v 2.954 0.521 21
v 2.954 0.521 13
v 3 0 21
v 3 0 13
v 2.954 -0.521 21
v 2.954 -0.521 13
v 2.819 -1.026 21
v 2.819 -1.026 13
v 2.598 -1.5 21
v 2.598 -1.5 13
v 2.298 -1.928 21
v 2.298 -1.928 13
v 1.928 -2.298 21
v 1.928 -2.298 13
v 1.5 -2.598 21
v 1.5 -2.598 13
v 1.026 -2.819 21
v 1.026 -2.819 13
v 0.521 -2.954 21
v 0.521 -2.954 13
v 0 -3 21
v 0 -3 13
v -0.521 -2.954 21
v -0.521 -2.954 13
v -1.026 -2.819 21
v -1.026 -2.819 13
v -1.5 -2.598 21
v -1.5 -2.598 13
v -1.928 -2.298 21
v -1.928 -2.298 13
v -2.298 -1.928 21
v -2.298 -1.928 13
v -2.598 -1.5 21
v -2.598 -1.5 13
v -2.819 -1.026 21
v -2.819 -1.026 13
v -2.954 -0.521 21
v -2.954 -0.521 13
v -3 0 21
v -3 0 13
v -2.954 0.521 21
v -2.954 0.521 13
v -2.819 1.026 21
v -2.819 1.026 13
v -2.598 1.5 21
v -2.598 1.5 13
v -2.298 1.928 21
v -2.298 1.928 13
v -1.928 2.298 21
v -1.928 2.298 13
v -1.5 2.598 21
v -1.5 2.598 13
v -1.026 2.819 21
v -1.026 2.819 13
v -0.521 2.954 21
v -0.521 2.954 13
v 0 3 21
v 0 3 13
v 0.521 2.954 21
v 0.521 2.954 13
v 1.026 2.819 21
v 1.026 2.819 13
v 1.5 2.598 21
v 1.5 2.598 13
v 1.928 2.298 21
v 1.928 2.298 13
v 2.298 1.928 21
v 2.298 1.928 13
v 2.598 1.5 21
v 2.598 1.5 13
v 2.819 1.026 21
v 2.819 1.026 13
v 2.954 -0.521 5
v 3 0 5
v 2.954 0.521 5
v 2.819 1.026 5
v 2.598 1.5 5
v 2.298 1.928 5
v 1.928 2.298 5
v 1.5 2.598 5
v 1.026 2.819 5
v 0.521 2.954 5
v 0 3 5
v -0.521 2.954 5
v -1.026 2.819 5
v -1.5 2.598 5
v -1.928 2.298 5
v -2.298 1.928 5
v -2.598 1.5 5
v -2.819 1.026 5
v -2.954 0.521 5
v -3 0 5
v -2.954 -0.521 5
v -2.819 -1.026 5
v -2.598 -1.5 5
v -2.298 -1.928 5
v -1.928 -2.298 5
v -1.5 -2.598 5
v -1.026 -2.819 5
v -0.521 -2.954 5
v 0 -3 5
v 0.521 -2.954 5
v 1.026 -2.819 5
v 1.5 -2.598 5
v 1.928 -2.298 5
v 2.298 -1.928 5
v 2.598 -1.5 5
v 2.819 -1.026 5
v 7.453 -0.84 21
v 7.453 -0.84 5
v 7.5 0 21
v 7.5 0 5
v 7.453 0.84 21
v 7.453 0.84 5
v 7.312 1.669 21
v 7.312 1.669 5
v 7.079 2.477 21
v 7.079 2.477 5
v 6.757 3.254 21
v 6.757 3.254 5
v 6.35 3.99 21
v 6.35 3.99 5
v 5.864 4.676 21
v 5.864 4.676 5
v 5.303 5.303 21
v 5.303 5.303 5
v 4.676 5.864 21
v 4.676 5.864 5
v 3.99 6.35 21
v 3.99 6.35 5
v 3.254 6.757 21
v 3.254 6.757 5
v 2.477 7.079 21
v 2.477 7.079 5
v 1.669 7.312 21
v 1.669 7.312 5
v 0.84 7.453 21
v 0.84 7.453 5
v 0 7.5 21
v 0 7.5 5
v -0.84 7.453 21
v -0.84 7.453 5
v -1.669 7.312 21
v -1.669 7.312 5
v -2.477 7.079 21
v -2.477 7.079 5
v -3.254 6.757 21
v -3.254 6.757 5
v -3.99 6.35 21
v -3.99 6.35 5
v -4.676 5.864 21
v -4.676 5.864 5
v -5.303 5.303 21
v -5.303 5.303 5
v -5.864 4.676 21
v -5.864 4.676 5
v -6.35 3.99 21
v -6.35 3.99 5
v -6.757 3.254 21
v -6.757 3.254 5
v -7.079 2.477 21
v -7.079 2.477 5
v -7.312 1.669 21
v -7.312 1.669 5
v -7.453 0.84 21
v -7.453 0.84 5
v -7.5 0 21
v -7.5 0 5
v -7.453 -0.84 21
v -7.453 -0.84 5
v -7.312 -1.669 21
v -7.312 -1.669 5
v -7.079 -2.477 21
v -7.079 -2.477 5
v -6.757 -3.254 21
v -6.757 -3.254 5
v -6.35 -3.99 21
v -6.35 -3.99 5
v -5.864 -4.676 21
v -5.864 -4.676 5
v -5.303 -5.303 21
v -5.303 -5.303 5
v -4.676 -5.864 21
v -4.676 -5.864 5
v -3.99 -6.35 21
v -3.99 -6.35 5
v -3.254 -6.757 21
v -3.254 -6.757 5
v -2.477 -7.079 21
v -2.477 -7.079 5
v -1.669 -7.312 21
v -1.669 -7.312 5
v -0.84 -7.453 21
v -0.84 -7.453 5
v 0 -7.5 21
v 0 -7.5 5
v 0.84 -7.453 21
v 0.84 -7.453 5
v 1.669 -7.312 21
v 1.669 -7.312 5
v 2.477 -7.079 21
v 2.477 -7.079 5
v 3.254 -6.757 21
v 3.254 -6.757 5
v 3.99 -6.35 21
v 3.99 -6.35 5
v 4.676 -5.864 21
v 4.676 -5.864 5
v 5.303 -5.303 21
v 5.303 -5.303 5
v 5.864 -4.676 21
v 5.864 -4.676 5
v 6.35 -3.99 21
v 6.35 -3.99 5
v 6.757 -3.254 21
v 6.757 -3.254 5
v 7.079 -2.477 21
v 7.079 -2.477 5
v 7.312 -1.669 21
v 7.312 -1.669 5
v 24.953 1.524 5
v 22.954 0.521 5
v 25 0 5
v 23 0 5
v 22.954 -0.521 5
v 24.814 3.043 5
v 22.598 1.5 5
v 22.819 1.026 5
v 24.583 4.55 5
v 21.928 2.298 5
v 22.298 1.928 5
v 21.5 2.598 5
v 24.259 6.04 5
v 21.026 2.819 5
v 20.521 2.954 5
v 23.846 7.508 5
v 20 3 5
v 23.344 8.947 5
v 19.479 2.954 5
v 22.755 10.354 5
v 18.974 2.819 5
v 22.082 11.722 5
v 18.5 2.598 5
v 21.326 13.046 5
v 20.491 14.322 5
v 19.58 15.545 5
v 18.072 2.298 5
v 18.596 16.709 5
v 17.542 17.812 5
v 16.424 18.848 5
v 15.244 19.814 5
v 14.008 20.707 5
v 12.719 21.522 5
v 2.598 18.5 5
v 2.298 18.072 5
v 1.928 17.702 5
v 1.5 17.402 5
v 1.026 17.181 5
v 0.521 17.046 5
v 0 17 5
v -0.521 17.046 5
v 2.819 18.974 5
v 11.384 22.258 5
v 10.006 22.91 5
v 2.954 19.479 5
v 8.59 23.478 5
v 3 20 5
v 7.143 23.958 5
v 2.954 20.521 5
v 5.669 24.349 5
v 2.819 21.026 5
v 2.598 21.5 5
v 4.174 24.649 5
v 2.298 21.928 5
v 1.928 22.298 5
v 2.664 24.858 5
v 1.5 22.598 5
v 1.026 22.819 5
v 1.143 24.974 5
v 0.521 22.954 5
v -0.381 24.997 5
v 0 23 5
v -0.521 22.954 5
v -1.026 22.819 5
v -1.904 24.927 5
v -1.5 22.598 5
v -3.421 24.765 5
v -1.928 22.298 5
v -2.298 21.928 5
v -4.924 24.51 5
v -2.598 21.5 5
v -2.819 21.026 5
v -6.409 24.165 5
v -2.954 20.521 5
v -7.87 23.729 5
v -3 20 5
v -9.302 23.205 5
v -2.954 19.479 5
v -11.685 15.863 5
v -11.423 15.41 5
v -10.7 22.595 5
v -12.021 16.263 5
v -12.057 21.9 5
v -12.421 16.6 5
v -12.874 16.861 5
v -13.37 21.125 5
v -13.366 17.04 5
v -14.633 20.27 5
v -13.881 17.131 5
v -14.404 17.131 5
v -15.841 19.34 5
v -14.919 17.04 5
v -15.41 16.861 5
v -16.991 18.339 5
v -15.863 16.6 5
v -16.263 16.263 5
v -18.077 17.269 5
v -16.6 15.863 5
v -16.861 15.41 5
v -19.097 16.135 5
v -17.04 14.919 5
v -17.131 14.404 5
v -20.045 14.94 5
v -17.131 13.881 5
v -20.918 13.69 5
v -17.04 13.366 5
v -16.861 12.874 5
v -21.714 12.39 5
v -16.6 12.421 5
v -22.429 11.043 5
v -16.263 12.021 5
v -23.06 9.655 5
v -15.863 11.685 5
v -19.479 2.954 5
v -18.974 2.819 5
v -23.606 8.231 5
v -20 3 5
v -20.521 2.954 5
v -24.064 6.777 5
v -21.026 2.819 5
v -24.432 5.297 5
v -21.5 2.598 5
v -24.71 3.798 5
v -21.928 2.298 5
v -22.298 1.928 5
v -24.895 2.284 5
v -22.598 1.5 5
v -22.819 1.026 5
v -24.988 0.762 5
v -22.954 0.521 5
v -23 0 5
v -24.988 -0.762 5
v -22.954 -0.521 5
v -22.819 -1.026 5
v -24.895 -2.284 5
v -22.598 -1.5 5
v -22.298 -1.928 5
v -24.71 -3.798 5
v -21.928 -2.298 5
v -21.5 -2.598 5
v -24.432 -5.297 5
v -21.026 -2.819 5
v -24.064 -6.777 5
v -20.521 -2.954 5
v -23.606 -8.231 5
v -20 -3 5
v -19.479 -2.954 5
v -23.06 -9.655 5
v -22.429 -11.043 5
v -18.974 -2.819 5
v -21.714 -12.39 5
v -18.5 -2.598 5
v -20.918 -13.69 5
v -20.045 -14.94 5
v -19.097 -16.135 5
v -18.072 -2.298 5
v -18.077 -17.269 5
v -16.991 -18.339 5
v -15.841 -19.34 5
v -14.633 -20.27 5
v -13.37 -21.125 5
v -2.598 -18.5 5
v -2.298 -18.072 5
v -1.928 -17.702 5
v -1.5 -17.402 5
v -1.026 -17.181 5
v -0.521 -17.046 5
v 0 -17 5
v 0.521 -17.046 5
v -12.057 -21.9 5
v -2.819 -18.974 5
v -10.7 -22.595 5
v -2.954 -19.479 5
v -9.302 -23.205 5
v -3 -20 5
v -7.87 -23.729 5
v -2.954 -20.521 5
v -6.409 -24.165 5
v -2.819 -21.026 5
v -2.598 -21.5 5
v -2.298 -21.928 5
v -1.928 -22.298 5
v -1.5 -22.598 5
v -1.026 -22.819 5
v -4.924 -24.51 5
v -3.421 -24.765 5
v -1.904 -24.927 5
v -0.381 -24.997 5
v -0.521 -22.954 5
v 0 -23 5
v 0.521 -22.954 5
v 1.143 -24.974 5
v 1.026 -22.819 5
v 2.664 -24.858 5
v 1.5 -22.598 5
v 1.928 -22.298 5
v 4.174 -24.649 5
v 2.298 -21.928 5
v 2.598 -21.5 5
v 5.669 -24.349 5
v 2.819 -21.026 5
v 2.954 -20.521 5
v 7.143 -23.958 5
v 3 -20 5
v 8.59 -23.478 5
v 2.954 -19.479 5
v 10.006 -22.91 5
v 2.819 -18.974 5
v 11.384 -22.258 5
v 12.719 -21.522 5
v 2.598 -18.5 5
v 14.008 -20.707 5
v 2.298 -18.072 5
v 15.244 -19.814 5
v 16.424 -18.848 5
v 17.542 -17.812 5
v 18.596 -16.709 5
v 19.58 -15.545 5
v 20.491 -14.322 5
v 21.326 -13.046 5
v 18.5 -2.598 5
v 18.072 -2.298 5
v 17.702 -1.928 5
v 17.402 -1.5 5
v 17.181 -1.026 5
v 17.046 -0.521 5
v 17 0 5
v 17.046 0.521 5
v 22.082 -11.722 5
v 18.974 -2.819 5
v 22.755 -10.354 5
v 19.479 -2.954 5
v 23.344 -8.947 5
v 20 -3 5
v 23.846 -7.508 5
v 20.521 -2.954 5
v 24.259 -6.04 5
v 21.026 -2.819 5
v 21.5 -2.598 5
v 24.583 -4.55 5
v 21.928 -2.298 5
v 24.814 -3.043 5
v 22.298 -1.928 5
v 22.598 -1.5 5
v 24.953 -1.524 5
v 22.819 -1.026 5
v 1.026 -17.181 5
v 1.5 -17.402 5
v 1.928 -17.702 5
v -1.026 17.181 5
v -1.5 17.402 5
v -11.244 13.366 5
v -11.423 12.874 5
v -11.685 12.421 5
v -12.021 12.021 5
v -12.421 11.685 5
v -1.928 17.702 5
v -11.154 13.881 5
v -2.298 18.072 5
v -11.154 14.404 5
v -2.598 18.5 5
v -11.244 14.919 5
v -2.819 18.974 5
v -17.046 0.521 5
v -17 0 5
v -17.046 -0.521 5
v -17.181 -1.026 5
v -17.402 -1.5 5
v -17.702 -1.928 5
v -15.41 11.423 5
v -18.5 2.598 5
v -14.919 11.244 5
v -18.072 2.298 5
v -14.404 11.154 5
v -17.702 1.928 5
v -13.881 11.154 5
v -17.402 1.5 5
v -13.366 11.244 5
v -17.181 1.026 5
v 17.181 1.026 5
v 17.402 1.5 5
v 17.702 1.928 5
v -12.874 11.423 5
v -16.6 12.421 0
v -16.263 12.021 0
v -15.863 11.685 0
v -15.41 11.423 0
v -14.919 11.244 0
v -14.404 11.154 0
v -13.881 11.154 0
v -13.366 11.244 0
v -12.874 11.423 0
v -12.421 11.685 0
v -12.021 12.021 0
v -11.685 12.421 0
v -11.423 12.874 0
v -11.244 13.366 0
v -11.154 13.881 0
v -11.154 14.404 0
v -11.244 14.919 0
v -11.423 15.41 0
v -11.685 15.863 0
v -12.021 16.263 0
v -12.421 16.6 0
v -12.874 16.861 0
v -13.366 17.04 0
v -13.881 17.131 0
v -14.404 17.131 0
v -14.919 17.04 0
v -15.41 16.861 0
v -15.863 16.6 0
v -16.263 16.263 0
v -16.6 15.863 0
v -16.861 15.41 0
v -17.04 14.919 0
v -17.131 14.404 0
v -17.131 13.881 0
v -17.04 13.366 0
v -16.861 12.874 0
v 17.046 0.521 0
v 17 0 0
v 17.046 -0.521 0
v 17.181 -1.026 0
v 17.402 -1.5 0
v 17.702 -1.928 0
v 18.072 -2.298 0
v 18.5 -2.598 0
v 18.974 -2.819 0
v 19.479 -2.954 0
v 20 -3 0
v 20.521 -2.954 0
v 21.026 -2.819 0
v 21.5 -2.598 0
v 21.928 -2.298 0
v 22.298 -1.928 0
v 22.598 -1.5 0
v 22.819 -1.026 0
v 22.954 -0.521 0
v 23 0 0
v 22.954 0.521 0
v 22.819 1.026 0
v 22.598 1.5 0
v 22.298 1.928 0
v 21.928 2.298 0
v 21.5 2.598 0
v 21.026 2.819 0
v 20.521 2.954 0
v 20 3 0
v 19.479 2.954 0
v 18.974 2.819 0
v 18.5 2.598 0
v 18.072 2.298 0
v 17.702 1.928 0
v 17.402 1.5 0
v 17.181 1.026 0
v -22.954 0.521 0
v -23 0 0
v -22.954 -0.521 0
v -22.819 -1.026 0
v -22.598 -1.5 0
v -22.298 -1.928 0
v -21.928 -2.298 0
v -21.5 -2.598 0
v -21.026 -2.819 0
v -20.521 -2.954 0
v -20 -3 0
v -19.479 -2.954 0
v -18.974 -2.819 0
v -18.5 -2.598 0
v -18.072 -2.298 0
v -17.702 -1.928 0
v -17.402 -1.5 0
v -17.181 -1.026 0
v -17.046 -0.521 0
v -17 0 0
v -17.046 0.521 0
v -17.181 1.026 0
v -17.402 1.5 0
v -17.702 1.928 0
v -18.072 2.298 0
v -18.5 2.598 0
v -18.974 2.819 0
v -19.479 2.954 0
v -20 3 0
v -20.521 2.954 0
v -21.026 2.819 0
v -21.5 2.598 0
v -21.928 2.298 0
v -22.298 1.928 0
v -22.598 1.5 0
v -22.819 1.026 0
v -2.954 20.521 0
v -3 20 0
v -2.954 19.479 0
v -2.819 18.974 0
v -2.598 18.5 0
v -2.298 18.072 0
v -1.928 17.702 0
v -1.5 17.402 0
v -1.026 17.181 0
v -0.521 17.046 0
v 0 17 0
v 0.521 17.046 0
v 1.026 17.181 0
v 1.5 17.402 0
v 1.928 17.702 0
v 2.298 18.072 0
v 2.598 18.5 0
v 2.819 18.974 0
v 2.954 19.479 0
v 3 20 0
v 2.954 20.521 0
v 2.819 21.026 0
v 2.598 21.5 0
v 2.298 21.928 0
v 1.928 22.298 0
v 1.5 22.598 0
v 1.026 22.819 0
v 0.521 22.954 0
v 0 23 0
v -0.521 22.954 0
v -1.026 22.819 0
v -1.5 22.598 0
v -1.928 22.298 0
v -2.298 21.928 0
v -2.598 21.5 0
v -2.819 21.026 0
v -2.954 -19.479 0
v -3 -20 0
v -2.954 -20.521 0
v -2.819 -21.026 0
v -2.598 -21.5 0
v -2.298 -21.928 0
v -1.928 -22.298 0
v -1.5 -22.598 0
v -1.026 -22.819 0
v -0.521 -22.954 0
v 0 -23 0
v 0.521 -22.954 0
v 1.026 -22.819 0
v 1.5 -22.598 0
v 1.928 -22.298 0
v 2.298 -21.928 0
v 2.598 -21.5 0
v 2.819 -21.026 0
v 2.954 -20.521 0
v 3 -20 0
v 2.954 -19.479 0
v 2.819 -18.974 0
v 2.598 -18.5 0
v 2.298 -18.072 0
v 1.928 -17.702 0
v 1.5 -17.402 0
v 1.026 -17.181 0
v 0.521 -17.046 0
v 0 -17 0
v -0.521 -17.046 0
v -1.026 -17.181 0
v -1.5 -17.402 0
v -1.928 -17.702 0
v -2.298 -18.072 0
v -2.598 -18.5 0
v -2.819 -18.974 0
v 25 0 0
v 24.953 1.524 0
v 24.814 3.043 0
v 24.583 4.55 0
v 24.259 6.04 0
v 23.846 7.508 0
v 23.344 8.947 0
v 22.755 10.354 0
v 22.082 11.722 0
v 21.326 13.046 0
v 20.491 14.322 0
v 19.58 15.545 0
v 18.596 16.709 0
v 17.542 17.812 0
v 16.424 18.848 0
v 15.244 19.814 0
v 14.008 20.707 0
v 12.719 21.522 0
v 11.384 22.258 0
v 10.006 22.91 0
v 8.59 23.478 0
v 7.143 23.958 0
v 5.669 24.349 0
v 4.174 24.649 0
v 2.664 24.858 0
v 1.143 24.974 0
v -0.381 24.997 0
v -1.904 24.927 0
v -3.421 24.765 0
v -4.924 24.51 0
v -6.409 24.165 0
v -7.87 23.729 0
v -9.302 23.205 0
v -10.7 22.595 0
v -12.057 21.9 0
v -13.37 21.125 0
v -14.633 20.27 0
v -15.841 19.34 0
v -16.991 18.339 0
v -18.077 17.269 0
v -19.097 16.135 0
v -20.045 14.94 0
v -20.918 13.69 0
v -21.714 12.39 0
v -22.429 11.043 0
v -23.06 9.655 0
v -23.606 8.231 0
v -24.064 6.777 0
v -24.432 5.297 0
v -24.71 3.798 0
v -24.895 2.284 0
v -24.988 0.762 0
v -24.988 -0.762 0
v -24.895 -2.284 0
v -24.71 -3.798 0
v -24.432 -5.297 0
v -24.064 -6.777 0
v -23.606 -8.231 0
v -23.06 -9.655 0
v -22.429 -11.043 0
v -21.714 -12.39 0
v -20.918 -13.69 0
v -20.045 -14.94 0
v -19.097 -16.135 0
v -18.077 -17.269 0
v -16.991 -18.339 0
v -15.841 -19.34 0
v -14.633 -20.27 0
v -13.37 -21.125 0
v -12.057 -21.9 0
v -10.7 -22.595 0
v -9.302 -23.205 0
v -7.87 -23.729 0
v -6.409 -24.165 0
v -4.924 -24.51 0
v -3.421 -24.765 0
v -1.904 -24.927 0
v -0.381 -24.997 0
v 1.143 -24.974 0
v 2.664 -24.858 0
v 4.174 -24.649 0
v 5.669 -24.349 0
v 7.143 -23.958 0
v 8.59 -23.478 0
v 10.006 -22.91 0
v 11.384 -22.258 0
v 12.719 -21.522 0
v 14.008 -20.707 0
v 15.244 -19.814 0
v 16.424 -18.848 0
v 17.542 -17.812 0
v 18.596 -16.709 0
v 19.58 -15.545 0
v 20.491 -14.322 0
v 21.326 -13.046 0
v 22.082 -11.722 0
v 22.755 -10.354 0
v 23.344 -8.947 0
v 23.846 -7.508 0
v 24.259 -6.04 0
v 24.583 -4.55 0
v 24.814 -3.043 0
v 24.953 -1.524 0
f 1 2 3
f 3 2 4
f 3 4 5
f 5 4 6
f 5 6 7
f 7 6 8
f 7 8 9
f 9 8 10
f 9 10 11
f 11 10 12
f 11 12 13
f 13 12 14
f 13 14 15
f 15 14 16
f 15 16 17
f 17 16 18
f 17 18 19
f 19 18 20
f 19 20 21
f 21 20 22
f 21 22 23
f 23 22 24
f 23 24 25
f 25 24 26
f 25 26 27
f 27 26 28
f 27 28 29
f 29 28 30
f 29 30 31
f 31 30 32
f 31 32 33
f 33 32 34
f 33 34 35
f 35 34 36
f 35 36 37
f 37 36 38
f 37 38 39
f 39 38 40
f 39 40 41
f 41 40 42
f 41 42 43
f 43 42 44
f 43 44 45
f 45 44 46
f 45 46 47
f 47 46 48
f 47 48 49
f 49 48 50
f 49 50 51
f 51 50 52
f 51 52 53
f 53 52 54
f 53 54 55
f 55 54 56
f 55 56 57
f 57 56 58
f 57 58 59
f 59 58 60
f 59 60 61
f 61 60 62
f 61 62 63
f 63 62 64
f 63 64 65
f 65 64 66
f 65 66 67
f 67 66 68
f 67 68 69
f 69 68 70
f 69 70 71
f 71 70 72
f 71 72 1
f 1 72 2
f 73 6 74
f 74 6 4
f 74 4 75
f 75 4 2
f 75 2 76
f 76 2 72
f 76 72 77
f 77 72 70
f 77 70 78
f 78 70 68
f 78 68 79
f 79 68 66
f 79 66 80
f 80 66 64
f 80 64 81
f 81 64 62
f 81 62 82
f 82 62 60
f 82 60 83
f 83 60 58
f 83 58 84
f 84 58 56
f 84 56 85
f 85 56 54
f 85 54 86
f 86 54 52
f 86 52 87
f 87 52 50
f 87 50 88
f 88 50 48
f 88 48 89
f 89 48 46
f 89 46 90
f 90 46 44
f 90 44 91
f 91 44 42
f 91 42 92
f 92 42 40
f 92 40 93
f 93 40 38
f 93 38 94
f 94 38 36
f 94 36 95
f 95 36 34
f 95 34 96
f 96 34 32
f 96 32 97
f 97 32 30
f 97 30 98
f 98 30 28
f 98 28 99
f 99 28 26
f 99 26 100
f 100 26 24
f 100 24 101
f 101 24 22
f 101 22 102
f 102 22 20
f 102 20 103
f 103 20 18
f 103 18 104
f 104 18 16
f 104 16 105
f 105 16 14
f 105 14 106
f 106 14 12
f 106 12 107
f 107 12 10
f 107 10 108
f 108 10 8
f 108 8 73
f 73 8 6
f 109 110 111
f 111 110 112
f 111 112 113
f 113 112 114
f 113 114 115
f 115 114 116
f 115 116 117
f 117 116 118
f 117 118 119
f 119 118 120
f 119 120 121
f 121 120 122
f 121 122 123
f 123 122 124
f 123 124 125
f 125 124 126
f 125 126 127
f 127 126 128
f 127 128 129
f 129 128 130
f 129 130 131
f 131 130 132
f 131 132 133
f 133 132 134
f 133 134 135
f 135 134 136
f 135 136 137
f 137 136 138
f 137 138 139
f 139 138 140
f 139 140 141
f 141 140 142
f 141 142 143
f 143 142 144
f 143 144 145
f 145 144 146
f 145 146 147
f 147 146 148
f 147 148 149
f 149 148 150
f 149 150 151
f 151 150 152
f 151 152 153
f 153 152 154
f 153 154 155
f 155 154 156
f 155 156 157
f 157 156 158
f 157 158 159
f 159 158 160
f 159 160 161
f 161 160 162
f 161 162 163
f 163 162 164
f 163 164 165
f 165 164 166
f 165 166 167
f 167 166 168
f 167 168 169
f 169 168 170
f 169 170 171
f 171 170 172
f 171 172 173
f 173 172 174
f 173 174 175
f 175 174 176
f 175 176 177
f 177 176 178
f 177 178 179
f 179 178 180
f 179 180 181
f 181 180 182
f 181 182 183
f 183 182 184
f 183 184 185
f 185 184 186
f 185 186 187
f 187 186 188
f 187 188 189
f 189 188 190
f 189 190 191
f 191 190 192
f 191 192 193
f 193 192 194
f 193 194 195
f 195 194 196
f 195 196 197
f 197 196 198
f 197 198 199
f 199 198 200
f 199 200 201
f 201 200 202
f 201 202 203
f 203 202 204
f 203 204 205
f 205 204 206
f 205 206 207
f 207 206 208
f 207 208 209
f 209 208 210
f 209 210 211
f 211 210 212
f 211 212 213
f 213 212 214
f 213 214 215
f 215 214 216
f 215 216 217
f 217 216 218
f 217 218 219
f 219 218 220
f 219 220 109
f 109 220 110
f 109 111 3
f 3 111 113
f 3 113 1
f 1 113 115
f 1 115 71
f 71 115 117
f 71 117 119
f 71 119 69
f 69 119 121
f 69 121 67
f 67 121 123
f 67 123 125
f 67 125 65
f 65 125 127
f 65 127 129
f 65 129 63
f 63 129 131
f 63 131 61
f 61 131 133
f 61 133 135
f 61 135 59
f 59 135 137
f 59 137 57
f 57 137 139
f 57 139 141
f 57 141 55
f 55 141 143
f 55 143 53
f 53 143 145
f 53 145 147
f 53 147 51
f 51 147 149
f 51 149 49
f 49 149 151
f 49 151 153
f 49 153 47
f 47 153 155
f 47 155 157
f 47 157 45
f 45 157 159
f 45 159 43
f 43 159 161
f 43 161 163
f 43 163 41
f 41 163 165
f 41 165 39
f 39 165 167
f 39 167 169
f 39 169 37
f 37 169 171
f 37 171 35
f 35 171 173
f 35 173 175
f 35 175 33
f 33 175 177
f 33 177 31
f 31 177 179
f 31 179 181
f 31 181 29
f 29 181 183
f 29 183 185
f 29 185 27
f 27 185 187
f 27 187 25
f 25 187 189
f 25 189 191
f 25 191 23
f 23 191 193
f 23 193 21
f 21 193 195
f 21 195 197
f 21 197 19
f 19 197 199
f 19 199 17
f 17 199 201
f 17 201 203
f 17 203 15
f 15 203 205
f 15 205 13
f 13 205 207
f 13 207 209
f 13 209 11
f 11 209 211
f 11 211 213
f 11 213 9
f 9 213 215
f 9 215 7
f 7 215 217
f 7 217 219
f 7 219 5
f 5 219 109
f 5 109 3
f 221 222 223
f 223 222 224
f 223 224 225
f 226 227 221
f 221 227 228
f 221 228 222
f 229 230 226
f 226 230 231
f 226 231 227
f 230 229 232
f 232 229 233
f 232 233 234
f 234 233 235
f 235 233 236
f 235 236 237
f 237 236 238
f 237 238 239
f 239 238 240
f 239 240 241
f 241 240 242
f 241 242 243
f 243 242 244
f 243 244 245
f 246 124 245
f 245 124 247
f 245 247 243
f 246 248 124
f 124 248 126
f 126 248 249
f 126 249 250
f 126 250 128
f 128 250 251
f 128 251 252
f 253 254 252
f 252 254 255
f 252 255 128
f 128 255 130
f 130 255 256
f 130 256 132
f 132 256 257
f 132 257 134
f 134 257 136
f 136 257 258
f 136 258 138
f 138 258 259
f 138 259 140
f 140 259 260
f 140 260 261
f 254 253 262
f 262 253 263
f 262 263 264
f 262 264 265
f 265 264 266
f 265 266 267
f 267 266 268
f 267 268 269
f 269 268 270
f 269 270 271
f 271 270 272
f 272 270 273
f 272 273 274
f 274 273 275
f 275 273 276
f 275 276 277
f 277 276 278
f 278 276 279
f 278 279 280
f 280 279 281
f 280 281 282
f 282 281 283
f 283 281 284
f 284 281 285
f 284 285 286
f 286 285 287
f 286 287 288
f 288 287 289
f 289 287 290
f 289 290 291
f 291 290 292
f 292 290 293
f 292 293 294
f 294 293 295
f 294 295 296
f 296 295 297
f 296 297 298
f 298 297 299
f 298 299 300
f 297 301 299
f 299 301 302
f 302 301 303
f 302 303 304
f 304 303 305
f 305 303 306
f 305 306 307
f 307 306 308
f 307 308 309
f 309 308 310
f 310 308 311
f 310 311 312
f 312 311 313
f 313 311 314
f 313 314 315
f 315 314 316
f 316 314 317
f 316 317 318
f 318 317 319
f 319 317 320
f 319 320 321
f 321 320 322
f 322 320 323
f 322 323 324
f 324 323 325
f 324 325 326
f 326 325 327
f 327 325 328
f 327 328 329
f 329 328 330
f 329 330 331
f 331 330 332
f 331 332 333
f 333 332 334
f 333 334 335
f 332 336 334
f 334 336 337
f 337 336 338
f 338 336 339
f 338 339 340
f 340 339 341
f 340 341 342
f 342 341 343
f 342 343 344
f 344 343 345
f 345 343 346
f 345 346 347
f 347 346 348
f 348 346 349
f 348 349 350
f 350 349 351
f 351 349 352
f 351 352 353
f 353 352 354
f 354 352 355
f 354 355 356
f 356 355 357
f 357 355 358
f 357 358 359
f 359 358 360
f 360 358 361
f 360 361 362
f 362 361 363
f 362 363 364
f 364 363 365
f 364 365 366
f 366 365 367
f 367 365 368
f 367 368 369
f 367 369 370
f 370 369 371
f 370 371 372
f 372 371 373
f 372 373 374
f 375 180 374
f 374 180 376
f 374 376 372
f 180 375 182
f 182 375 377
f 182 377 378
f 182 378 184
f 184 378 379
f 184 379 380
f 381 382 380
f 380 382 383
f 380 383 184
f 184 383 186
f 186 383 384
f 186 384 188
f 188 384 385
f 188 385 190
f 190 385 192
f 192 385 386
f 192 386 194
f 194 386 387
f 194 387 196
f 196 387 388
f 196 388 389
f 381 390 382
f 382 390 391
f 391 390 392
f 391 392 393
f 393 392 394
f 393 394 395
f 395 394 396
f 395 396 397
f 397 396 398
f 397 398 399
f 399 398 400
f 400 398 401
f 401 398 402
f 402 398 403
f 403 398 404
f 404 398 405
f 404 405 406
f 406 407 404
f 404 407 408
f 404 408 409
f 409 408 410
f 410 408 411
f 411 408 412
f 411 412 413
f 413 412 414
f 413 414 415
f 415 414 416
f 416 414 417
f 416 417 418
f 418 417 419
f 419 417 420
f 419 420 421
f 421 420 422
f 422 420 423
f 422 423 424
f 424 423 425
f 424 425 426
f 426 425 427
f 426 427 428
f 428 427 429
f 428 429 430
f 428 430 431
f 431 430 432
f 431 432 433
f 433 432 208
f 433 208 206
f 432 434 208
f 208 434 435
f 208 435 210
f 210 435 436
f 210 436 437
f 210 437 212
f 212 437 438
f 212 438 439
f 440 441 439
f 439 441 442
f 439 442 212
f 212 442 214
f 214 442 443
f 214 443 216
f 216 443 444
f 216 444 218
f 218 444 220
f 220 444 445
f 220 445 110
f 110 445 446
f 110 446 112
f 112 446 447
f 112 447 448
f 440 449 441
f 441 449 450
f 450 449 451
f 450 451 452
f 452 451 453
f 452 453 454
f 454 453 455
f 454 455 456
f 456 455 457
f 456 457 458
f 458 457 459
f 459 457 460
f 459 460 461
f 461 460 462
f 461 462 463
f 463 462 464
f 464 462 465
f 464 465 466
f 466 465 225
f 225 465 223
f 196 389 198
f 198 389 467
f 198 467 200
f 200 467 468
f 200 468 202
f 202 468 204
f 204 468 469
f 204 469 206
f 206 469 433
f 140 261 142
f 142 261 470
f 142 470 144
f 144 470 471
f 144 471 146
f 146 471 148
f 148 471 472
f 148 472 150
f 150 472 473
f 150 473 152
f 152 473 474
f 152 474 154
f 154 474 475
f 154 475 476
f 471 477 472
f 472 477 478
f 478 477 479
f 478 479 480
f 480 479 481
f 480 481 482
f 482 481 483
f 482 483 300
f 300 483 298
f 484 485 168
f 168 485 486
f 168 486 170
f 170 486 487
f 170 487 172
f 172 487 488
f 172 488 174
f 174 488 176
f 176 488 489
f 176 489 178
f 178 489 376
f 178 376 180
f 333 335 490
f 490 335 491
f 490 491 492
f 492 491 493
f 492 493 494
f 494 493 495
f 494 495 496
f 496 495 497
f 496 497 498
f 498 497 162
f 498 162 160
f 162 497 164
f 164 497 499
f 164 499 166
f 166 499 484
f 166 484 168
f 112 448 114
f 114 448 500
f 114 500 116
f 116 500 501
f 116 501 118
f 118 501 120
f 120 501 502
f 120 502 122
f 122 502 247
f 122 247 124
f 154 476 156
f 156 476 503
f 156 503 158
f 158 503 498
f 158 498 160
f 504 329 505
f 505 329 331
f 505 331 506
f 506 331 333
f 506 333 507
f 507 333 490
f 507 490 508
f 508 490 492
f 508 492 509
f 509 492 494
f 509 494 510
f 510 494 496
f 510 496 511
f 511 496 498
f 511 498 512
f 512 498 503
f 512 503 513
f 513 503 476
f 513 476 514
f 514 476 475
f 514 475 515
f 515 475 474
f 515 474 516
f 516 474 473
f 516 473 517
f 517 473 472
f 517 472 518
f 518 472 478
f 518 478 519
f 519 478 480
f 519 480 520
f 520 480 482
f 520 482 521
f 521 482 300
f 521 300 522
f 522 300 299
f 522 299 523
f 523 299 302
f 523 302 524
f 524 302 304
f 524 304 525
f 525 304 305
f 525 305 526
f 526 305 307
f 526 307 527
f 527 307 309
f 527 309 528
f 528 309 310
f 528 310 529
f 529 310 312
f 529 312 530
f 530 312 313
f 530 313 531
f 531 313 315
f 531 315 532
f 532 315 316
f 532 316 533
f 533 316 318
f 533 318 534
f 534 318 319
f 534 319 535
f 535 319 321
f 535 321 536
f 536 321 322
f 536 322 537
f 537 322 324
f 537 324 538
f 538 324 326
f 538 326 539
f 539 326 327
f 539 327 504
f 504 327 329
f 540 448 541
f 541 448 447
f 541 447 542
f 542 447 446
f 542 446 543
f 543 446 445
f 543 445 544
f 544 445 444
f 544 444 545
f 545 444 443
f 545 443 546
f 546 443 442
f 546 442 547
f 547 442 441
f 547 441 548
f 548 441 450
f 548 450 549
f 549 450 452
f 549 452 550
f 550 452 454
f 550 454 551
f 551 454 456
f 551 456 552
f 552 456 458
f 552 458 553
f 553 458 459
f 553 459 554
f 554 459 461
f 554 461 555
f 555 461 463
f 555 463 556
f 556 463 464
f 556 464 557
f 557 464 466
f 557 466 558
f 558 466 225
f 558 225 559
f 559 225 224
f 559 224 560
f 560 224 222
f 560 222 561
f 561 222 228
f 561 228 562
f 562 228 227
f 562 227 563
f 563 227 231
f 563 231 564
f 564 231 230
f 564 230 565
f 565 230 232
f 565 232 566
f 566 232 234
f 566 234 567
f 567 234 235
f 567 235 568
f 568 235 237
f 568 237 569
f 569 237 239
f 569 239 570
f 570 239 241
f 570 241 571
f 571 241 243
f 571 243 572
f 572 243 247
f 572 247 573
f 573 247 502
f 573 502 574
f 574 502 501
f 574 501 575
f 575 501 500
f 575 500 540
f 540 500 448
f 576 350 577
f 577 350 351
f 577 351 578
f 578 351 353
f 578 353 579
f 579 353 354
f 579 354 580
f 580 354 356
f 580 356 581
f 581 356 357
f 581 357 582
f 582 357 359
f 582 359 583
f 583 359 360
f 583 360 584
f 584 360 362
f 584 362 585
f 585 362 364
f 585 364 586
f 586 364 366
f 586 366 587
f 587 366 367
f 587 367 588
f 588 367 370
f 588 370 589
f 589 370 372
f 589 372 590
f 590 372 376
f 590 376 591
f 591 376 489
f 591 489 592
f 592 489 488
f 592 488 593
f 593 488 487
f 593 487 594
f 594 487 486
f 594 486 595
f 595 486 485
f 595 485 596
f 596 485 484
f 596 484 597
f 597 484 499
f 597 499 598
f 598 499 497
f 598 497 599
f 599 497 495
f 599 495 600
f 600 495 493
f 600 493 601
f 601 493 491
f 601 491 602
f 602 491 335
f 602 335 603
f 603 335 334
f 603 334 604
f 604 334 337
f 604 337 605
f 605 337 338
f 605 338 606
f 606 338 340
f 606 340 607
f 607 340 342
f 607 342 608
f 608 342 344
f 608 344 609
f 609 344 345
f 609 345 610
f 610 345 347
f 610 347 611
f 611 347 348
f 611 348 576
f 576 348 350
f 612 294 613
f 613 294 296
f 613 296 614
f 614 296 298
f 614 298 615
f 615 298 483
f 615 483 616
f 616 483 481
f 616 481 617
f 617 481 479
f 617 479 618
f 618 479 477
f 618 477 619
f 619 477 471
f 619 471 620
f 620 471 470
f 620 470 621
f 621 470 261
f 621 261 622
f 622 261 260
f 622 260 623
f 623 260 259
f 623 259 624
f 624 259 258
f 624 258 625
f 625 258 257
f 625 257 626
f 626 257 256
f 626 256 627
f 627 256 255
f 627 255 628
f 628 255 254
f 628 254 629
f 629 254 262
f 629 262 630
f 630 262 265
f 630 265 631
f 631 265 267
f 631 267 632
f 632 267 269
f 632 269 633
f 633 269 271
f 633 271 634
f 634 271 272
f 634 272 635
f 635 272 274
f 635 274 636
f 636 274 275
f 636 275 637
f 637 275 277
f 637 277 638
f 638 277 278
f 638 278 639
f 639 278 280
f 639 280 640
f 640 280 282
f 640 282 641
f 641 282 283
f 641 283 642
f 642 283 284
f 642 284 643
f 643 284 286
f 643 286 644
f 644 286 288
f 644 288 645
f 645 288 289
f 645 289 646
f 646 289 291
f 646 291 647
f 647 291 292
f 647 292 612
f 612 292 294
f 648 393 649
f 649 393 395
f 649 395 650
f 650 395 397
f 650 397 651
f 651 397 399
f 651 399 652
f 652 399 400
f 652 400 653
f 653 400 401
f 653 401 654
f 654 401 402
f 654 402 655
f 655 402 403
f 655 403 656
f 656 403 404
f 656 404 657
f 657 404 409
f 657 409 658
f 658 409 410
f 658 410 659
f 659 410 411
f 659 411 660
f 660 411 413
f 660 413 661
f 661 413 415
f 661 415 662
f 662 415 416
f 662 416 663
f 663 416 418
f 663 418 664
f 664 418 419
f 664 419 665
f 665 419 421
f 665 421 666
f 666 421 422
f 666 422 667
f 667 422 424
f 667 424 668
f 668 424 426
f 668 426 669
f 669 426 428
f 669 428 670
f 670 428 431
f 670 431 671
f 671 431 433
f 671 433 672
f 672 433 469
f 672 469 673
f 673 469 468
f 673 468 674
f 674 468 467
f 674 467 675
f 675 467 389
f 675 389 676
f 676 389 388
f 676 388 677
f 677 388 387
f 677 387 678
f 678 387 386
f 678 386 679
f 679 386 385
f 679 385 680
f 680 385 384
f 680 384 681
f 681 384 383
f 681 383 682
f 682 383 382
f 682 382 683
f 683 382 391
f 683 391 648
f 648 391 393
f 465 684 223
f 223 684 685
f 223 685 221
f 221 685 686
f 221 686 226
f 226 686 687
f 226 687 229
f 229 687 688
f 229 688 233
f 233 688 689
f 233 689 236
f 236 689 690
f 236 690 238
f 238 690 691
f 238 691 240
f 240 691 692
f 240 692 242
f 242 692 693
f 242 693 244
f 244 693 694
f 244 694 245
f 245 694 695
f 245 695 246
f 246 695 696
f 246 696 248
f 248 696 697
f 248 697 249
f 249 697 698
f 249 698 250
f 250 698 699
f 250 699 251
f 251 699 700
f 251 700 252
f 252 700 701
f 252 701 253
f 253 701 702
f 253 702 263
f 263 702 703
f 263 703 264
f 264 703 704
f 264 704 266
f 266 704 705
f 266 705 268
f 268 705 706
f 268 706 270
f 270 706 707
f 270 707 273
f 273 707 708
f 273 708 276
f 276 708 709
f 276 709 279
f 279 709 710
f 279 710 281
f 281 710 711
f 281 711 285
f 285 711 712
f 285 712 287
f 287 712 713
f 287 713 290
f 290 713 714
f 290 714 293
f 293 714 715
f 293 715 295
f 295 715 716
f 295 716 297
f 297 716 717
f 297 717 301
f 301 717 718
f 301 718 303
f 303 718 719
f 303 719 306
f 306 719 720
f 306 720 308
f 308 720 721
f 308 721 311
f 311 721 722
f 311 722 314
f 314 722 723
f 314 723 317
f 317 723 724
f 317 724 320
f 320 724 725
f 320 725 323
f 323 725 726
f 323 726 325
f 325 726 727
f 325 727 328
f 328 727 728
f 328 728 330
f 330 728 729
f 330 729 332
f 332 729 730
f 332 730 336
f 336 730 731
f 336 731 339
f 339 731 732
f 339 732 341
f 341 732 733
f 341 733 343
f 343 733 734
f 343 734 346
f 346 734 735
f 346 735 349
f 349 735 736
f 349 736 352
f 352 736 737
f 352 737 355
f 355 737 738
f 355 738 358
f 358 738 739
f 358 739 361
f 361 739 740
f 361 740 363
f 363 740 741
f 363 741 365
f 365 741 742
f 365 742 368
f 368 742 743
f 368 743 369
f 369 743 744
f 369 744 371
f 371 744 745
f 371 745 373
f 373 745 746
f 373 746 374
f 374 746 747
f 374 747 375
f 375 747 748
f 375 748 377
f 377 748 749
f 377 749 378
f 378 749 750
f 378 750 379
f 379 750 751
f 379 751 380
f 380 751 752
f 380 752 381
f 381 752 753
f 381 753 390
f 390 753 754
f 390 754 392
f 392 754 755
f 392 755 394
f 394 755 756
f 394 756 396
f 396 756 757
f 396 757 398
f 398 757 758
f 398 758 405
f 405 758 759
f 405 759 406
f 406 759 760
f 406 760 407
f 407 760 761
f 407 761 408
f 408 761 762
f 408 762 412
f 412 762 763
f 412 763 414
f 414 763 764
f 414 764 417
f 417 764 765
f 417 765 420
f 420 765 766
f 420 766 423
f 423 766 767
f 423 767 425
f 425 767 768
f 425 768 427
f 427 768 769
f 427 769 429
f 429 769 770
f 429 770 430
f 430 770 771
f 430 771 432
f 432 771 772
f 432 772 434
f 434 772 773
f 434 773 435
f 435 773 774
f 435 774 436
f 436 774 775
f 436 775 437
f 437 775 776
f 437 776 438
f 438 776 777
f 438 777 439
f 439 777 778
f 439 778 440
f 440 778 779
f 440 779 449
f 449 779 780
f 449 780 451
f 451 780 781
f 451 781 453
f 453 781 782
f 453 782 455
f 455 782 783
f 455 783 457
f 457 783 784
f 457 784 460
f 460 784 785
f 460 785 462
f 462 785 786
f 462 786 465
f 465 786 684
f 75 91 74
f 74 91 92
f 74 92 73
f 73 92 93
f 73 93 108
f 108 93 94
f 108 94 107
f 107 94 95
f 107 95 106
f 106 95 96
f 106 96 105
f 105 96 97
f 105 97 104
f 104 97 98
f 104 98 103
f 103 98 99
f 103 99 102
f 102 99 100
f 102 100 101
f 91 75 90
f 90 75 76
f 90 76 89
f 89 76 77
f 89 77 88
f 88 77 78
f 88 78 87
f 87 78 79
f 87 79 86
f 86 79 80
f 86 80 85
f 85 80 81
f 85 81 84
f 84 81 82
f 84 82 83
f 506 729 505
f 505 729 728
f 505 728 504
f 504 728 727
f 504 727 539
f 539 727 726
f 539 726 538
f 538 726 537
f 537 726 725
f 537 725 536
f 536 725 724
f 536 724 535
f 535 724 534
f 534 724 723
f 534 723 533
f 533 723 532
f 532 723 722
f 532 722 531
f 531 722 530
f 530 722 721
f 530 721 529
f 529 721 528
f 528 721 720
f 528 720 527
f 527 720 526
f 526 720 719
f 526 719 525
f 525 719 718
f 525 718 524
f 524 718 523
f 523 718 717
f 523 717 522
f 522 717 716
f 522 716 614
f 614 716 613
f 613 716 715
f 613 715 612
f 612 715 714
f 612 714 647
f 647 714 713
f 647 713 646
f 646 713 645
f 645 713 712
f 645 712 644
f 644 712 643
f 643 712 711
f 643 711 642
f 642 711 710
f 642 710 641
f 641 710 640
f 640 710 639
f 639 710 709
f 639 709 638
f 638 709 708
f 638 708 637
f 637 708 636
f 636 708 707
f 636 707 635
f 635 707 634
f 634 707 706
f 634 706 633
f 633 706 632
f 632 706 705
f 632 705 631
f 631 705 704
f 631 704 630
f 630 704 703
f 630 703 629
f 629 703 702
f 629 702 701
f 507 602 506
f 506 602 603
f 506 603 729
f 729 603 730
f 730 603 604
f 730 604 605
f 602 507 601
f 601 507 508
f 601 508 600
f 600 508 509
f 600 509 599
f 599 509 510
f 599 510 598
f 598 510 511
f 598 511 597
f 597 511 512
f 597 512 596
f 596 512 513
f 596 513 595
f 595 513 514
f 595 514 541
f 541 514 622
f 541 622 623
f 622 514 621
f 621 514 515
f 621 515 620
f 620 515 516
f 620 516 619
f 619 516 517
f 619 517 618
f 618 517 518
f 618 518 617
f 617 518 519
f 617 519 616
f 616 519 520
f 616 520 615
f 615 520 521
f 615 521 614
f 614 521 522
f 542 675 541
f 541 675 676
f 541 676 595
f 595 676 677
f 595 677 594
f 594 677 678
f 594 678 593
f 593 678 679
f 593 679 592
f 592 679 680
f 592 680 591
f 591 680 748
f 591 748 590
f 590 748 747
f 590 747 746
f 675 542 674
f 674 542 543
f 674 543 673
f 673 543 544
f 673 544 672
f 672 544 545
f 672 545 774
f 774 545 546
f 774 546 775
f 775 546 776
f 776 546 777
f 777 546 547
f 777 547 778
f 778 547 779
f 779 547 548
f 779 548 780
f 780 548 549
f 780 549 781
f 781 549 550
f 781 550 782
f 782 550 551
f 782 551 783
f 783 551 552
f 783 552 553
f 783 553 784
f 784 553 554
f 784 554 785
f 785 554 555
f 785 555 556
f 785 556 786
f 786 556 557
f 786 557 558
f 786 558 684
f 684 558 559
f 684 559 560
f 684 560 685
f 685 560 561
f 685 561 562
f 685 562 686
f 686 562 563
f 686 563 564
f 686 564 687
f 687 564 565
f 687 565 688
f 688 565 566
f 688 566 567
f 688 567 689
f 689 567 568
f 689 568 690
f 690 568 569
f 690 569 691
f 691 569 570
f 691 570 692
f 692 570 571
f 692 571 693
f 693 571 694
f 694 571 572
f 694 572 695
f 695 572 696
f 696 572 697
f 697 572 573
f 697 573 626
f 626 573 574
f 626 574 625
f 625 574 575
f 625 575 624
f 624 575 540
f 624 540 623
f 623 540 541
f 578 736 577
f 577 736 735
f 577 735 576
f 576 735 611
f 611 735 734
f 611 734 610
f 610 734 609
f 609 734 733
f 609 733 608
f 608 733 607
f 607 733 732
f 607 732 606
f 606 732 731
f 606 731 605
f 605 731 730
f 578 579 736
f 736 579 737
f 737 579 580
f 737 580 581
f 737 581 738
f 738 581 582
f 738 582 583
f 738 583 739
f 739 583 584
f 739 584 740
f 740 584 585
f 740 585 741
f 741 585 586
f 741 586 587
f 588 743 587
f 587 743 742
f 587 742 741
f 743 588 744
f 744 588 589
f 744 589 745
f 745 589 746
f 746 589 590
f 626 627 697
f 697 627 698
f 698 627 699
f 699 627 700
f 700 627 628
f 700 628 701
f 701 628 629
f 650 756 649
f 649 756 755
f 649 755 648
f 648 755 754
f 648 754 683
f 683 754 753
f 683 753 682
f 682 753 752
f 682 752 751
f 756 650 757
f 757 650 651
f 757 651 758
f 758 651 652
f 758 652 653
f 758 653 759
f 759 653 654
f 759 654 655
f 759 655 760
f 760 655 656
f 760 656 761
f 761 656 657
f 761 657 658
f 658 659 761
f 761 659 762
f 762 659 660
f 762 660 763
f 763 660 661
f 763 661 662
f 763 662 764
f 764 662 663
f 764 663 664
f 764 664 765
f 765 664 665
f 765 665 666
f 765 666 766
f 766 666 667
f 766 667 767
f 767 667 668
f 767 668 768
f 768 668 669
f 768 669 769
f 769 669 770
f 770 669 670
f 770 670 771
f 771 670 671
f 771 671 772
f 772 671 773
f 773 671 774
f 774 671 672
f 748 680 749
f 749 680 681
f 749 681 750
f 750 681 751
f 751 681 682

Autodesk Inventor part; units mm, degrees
ref_plane "YZ Plane" through (0, 0, 0) normal (1, 0, 0) x (0, 1, 0)
ref_plane "XZ Plane" through (0, 0, 0) normal (0, 1, 0) x (-1, 0, 0)
ref_plane "XY Plane" through (0, 0, 0) normal (0, 0, 1) x (1, 0, 0)
sketch "Sketch1" plane through (0, 0, 0) normal (0, 0, 1) x (1, 0, 0)
  circle A0 centre (0, 0) radius 25
  dimension "d0" = 50
extrude "Extrusion1" add sketch "Sketch1" along normal blind 5
sketch "Sketch2" plane through (0, 0, 5) normal (0, 0, 1) x (1, 0, 0)
  circle A0 centre (0, 20) radius 3
  circle A1 centre (20, 0) radius 3
  circle A2 centre (-20, 0) radius 3
  circle A3 centre (0, -20) radius 3
  dimension "d4" = 6
  dimension "d5" = 6
  dimension "d6" = 6
  dimension "d7" = 6
hole "Hole1" at (-20, 0, 5) at (0, 20, 5) at (20, 0, 5) at (0, -20, 5) direction (0, 0, -1) diameter 6 end through all
thread "Thread1" size "M6x1" class "6H" standard "ANSI Metric M Profile" full length
thread "Thread2" size "M6x1" class "6H" standard "ANSI Metric M Profile" full length
thread "Thread3" size "M6x1" class "6H" standard "ANSI Metric M Profile" full length
thread "Thread4" size "M6x1" class "6H" standard "ANSI Metric M Profile" full length
pattern_circular "Circular Pattern1" count 2 over 45 about axis through (0, 0, 0) along (0, 0, 1) of "Hole1"
sketch "Sketch4" plane through (0, 0, 5) normal (0, 0, 1) x (1, 0, 0)
  circle A0 centre (14.1421, 14.1421) radius 3 projected
  circle A1 centre (14.1421, 14.1421) radius 3
  circle A2 centre (14.1421, -14.1421) radius 3 projected
  circle A3 centre (14.1421, -14.1421) radius 3
  circle A4 centre (-14.1421, -14.1421) radius 3 projected
  circle A5 centre (-14.1421, -14.1421) radius 3
  point P0 (0, 0)
extrude "Extrusion2" add sketch "Sketch4" against normal blind 5
sketch "Sketch5" plane through (0, 0, 5) normal (0, 0, 1) x (1, 0, 0)
  circle A0 centre (-14.1421, 14.1421) radius 3 projected
  circle A1 centre (20, 0) radius 3 projected
  circle A2 centre (-20, 0) radius 3 projected
  circle A3 centre (0, 20) radius 3 projected
  circle A4 centre (0, -20) radius 3 projected
  circle A5 centre (0, 0) radius 25 projected
  circle A6 centre (0, 0) radius 7.5
  circle A7 centre (0, 0) radius 3
  dimension "d29" = 15
  dimension "d30" = 6
extrude "Extrusion3" add sketch "Sketch5" along normal blind 16 contours A6
properties part number "Base"
